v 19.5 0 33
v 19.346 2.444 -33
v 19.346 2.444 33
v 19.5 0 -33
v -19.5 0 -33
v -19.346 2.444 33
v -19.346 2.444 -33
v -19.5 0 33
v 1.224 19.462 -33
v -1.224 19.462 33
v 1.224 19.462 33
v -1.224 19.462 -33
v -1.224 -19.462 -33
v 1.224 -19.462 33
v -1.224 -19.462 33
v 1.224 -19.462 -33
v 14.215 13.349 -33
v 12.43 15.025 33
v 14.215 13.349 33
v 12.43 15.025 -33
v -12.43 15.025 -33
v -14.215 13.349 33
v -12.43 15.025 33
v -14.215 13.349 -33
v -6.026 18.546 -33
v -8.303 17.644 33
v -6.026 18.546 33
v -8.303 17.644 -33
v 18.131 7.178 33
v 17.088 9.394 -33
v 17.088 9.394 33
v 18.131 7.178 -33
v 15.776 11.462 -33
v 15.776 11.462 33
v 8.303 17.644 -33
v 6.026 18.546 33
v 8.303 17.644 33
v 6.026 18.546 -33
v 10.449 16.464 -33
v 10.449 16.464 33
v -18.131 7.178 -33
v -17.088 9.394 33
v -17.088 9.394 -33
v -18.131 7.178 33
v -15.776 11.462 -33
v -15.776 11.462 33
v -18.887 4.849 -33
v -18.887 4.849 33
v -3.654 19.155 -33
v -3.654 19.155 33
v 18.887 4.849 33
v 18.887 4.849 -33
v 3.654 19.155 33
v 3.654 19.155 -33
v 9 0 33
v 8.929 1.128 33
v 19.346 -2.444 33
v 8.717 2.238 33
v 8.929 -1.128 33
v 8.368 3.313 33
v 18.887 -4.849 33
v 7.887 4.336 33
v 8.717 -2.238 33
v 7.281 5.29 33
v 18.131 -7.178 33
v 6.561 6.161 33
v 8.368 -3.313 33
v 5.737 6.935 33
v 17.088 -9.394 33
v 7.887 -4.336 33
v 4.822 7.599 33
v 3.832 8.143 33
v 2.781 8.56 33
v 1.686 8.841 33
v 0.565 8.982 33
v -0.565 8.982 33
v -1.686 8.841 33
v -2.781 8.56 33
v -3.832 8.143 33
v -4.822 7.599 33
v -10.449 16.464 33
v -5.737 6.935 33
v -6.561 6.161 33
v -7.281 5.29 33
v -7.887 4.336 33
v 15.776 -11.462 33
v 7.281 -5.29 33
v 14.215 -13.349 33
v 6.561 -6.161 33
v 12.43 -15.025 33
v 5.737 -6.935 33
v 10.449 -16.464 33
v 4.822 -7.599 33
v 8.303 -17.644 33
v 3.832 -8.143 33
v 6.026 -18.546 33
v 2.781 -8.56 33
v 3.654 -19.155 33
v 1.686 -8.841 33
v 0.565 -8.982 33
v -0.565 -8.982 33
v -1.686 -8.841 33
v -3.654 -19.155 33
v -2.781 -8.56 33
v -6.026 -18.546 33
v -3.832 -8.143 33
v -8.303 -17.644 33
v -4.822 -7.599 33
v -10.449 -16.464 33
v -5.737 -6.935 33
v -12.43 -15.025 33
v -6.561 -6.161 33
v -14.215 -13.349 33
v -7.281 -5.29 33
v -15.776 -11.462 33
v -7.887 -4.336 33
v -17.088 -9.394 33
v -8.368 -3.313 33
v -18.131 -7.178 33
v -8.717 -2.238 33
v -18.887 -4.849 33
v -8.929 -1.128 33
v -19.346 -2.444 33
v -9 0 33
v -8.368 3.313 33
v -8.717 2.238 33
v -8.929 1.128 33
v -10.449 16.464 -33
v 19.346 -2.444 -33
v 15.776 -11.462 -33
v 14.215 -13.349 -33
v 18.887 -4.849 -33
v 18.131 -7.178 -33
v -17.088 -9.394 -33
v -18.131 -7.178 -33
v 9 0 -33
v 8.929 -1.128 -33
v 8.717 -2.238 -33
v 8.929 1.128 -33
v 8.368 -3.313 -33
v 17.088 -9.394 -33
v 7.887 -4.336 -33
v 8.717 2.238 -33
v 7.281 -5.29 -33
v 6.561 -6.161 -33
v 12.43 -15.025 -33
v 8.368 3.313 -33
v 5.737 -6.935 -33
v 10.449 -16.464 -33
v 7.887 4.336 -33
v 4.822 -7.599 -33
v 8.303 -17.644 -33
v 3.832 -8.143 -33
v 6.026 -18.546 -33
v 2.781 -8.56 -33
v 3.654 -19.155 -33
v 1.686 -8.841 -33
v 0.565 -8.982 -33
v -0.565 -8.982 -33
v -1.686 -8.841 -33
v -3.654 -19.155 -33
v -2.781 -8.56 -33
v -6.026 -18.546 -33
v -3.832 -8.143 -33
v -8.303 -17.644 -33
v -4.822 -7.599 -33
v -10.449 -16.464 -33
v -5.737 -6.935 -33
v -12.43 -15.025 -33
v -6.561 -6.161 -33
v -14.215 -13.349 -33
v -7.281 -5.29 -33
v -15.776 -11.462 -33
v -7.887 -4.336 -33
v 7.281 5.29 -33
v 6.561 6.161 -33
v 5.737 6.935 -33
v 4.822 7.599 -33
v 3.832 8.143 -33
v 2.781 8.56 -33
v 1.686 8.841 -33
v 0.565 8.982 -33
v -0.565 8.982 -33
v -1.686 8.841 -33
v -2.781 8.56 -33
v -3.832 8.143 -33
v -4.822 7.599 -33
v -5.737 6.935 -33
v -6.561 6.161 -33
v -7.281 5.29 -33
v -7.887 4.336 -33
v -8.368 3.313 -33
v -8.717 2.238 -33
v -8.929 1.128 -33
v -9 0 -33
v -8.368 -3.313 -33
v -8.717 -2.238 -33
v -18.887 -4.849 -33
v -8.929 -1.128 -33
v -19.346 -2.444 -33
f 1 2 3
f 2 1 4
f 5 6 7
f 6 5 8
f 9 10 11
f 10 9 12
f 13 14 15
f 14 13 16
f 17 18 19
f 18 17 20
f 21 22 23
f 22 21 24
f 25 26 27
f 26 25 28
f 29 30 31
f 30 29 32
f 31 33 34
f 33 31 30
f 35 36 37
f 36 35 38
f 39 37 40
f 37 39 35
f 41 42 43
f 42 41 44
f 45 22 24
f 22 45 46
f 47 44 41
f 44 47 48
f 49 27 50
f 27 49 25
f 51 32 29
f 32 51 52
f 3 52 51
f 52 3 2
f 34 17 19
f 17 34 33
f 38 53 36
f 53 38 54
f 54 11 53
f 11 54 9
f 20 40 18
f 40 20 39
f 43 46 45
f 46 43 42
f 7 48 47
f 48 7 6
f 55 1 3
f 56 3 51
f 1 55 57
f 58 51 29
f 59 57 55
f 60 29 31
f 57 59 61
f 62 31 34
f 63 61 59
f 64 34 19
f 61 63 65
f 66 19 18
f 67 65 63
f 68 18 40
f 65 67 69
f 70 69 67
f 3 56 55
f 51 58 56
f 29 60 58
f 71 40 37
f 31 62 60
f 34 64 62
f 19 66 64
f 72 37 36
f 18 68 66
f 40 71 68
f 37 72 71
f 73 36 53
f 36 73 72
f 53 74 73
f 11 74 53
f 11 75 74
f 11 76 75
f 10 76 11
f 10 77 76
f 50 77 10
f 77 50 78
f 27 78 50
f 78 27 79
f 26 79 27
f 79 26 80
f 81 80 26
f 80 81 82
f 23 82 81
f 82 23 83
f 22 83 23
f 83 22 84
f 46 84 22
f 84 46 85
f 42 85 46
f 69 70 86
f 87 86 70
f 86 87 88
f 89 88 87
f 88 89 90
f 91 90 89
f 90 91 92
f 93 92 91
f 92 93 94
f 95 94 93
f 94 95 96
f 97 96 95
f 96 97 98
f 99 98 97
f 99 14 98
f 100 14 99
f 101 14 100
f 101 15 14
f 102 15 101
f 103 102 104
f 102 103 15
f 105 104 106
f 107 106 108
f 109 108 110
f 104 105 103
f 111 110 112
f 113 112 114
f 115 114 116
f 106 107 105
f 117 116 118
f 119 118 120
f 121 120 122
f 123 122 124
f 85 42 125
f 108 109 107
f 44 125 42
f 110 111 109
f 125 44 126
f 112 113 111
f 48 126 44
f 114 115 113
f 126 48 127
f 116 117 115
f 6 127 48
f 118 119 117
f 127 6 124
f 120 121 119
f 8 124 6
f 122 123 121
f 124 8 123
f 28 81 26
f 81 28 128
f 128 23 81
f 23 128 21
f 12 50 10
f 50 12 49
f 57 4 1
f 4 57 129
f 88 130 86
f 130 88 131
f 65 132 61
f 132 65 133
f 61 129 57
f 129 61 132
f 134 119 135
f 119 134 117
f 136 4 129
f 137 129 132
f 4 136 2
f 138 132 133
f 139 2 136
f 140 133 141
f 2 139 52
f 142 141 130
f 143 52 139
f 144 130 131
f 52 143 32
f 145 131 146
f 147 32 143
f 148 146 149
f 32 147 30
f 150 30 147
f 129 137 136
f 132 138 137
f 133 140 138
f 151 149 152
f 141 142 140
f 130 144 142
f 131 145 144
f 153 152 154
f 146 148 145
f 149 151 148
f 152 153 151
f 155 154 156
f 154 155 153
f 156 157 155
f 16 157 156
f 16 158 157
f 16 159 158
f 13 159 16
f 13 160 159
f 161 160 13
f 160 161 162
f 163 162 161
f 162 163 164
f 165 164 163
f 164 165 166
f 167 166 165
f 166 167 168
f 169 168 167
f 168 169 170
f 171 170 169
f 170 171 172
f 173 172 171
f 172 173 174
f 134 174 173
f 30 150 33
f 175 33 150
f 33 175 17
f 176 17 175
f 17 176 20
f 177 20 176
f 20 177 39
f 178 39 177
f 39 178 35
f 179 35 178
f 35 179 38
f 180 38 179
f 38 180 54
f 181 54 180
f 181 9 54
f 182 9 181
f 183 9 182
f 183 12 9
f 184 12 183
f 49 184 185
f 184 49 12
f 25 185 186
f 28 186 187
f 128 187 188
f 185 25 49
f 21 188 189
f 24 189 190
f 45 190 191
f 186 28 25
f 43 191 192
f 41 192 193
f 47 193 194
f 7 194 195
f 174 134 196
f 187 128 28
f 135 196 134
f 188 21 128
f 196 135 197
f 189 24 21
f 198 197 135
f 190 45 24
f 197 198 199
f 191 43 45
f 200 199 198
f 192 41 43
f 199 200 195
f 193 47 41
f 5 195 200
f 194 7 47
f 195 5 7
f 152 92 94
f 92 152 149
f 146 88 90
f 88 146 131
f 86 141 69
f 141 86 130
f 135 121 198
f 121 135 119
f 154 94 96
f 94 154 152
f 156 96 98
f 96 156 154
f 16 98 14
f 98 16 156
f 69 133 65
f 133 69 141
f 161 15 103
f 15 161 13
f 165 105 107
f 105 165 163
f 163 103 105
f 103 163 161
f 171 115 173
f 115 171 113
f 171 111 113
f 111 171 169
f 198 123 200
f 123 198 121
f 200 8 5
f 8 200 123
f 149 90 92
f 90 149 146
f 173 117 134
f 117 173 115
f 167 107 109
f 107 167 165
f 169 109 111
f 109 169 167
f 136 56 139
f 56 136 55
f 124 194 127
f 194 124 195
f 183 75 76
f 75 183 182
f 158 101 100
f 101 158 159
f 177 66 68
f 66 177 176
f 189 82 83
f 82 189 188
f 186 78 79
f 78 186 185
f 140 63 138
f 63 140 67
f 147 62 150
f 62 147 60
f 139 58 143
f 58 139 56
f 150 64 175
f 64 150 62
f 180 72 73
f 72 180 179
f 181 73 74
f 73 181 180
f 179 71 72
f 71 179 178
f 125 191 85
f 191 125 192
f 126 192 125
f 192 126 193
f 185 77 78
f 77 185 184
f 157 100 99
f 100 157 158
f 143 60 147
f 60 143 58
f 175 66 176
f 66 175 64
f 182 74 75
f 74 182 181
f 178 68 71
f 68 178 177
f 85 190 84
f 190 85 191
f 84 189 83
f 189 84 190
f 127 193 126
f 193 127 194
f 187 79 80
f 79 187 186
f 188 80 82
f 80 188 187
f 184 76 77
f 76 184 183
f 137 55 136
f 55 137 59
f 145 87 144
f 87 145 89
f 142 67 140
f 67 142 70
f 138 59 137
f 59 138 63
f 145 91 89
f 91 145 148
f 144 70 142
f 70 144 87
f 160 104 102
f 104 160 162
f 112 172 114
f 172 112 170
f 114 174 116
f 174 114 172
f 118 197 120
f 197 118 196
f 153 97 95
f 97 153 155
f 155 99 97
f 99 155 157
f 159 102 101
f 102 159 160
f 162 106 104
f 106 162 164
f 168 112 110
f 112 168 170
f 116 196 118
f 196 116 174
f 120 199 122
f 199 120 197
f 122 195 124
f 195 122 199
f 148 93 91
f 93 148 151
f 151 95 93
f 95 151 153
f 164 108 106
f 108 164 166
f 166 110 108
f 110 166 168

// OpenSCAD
$fn = 50;


difference() {
	union() {
		translate(v = [0, 0, -33.0000000000]) {
			cylinder(h = 66, r = 19.5000000000);
		}
	}
	union() {
		translate(v = [0, 0, -100.0000000000]) {
			cylinder(h = 200, r = 9);
		}
	}
}
